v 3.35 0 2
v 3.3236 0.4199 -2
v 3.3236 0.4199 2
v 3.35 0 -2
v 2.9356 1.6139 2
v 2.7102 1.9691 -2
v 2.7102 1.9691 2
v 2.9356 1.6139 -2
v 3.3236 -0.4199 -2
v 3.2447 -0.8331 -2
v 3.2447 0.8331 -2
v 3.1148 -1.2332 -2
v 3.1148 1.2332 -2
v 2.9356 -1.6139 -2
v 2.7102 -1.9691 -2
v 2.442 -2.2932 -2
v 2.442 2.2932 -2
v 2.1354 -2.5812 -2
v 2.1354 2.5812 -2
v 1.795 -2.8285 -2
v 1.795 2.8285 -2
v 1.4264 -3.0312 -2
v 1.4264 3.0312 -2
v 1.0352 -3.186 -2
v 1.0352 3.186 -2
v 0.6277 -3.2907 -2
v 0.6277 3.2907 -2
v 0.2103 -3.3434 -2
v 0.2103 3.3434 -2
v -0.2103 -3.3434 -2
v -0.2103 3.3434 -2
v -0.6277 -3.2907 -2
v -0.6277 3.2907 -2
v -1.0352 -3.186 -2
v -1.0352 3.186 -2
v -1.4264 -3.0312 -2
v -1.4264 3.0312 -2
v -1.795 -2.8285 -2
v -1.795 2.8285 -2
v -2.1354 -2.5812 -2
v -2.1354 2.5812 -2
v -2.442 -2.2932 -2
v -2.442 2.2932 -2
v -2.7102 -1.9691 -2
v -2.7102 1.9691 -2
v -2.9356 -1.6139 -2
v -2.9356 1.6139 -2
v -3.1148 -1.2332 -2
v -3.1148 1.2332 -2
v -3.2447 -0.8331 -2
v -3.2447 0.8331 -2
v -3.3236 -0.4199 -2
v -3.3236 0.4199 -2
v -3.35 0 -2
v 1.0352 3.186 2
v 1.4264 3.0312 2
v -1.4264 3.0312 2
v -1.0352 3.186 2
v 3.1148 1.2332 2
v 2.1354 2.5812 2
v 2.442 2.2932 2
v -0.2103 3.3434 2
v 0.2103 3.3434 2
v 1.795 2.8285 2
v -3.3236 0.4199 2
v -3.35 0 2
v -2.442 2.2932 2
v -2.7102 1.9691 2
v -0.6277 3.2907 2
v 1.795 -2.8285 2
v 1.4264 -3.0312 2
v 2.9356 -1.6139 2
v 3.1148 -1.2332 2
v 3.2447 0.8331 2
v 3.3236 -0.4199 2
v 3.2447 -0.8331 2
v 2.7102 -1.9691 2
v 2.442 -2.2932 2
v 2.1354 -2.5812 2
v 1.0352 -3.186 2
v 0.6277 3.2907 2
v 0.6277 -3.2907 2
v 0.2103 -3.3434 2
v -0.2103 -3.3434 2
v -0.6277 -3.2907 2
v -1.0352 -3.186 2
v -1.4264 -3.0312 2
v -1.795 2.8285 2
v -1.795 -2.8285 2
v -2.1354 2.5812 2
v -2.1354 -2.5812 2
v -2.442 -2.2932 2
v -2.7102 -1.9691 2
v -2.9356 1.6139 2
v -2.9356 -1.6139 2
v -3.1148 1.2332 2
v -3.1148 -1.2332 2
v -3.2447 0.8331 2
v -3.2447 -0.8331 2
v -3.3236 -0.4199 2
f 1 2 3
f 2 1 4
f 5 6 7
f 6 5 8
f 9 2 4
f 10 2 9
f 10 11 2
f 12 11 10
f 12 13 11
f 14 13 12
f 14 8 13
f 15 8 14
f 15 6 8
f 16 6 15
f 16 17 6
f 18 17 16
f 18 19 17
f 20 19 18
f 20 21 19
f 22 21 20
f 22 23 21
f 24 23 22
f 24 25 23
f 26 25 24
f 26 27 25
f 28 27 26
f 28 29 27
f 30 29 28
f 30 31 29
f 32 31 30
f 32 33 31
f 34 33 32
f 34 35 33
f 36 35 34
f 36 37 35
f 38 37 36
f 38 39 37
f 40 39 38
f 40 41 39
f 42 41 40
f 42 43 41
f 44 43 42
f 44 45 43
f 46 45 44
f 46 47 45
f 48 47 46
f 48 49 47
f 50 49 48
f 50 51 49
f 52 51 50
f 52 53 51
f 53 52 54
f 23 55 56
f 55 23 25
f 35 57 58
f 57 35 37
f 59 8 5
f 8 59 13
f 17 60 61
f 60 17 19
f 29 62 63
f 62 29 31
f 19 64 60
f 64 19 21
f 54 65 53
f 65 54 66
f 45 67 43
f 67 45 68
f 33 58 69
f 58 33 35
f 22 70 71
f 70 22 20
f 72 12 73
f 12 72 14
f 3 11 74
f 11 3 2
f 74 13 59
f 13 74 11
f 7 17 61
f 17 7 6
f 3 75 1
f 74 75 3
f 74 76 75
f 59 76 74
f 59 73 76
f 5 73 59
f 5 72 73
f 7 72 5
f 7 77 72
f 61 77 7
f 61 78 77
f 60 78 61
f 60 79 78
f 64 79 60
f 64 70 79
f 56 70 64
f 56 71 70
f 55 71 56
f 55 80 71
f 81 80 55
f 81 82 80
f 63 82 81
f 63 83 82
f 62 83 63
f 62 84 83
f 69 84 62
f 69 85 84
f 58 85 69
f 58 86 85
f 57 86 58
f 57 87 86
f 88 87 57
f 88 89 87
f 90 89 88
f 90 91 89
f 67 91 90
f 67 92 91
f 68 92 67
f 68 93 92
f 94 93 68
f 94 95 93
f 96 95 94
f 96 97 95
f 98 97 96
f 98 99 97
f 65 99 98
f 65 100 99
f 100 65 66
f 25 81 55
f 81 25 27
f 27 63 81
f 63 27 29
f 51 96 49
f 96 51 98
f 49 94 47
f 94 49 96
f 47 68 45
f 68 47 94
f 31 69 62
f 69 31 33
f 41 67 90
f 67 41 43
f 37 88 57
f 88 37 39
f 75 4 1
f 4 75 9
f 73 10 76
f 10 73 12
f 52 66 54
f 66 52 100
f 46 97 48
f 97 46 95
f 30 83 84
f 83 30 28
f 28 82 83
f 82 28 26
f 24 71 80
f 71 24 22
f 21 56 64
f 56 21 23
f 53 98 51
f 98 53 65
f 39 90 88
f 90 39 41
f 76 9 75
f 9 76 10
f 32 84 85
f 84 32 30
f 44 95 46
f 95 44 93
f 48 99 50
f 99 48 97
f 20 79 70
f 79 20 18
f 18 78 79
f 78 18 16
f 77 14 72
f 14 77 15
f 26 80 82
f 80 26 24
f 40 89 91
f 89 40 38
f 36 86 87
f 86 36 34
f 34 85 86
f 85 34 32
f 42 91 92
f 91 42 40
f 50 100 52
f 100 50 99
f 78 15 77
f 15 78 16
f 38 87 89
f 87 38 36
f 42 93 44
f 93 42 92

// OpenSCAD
$fn = 50;


difference() {
	union() {
		translate(v = [0, 0, -2.0000000000]) {
			cylinder(h = 4, r = 3.3500000000);
		}
	}
	union() {
		translate(v = [0, 0, -100.0000000000]) {
			cylinder(h = 200, r = 0);
		}
	}
}
